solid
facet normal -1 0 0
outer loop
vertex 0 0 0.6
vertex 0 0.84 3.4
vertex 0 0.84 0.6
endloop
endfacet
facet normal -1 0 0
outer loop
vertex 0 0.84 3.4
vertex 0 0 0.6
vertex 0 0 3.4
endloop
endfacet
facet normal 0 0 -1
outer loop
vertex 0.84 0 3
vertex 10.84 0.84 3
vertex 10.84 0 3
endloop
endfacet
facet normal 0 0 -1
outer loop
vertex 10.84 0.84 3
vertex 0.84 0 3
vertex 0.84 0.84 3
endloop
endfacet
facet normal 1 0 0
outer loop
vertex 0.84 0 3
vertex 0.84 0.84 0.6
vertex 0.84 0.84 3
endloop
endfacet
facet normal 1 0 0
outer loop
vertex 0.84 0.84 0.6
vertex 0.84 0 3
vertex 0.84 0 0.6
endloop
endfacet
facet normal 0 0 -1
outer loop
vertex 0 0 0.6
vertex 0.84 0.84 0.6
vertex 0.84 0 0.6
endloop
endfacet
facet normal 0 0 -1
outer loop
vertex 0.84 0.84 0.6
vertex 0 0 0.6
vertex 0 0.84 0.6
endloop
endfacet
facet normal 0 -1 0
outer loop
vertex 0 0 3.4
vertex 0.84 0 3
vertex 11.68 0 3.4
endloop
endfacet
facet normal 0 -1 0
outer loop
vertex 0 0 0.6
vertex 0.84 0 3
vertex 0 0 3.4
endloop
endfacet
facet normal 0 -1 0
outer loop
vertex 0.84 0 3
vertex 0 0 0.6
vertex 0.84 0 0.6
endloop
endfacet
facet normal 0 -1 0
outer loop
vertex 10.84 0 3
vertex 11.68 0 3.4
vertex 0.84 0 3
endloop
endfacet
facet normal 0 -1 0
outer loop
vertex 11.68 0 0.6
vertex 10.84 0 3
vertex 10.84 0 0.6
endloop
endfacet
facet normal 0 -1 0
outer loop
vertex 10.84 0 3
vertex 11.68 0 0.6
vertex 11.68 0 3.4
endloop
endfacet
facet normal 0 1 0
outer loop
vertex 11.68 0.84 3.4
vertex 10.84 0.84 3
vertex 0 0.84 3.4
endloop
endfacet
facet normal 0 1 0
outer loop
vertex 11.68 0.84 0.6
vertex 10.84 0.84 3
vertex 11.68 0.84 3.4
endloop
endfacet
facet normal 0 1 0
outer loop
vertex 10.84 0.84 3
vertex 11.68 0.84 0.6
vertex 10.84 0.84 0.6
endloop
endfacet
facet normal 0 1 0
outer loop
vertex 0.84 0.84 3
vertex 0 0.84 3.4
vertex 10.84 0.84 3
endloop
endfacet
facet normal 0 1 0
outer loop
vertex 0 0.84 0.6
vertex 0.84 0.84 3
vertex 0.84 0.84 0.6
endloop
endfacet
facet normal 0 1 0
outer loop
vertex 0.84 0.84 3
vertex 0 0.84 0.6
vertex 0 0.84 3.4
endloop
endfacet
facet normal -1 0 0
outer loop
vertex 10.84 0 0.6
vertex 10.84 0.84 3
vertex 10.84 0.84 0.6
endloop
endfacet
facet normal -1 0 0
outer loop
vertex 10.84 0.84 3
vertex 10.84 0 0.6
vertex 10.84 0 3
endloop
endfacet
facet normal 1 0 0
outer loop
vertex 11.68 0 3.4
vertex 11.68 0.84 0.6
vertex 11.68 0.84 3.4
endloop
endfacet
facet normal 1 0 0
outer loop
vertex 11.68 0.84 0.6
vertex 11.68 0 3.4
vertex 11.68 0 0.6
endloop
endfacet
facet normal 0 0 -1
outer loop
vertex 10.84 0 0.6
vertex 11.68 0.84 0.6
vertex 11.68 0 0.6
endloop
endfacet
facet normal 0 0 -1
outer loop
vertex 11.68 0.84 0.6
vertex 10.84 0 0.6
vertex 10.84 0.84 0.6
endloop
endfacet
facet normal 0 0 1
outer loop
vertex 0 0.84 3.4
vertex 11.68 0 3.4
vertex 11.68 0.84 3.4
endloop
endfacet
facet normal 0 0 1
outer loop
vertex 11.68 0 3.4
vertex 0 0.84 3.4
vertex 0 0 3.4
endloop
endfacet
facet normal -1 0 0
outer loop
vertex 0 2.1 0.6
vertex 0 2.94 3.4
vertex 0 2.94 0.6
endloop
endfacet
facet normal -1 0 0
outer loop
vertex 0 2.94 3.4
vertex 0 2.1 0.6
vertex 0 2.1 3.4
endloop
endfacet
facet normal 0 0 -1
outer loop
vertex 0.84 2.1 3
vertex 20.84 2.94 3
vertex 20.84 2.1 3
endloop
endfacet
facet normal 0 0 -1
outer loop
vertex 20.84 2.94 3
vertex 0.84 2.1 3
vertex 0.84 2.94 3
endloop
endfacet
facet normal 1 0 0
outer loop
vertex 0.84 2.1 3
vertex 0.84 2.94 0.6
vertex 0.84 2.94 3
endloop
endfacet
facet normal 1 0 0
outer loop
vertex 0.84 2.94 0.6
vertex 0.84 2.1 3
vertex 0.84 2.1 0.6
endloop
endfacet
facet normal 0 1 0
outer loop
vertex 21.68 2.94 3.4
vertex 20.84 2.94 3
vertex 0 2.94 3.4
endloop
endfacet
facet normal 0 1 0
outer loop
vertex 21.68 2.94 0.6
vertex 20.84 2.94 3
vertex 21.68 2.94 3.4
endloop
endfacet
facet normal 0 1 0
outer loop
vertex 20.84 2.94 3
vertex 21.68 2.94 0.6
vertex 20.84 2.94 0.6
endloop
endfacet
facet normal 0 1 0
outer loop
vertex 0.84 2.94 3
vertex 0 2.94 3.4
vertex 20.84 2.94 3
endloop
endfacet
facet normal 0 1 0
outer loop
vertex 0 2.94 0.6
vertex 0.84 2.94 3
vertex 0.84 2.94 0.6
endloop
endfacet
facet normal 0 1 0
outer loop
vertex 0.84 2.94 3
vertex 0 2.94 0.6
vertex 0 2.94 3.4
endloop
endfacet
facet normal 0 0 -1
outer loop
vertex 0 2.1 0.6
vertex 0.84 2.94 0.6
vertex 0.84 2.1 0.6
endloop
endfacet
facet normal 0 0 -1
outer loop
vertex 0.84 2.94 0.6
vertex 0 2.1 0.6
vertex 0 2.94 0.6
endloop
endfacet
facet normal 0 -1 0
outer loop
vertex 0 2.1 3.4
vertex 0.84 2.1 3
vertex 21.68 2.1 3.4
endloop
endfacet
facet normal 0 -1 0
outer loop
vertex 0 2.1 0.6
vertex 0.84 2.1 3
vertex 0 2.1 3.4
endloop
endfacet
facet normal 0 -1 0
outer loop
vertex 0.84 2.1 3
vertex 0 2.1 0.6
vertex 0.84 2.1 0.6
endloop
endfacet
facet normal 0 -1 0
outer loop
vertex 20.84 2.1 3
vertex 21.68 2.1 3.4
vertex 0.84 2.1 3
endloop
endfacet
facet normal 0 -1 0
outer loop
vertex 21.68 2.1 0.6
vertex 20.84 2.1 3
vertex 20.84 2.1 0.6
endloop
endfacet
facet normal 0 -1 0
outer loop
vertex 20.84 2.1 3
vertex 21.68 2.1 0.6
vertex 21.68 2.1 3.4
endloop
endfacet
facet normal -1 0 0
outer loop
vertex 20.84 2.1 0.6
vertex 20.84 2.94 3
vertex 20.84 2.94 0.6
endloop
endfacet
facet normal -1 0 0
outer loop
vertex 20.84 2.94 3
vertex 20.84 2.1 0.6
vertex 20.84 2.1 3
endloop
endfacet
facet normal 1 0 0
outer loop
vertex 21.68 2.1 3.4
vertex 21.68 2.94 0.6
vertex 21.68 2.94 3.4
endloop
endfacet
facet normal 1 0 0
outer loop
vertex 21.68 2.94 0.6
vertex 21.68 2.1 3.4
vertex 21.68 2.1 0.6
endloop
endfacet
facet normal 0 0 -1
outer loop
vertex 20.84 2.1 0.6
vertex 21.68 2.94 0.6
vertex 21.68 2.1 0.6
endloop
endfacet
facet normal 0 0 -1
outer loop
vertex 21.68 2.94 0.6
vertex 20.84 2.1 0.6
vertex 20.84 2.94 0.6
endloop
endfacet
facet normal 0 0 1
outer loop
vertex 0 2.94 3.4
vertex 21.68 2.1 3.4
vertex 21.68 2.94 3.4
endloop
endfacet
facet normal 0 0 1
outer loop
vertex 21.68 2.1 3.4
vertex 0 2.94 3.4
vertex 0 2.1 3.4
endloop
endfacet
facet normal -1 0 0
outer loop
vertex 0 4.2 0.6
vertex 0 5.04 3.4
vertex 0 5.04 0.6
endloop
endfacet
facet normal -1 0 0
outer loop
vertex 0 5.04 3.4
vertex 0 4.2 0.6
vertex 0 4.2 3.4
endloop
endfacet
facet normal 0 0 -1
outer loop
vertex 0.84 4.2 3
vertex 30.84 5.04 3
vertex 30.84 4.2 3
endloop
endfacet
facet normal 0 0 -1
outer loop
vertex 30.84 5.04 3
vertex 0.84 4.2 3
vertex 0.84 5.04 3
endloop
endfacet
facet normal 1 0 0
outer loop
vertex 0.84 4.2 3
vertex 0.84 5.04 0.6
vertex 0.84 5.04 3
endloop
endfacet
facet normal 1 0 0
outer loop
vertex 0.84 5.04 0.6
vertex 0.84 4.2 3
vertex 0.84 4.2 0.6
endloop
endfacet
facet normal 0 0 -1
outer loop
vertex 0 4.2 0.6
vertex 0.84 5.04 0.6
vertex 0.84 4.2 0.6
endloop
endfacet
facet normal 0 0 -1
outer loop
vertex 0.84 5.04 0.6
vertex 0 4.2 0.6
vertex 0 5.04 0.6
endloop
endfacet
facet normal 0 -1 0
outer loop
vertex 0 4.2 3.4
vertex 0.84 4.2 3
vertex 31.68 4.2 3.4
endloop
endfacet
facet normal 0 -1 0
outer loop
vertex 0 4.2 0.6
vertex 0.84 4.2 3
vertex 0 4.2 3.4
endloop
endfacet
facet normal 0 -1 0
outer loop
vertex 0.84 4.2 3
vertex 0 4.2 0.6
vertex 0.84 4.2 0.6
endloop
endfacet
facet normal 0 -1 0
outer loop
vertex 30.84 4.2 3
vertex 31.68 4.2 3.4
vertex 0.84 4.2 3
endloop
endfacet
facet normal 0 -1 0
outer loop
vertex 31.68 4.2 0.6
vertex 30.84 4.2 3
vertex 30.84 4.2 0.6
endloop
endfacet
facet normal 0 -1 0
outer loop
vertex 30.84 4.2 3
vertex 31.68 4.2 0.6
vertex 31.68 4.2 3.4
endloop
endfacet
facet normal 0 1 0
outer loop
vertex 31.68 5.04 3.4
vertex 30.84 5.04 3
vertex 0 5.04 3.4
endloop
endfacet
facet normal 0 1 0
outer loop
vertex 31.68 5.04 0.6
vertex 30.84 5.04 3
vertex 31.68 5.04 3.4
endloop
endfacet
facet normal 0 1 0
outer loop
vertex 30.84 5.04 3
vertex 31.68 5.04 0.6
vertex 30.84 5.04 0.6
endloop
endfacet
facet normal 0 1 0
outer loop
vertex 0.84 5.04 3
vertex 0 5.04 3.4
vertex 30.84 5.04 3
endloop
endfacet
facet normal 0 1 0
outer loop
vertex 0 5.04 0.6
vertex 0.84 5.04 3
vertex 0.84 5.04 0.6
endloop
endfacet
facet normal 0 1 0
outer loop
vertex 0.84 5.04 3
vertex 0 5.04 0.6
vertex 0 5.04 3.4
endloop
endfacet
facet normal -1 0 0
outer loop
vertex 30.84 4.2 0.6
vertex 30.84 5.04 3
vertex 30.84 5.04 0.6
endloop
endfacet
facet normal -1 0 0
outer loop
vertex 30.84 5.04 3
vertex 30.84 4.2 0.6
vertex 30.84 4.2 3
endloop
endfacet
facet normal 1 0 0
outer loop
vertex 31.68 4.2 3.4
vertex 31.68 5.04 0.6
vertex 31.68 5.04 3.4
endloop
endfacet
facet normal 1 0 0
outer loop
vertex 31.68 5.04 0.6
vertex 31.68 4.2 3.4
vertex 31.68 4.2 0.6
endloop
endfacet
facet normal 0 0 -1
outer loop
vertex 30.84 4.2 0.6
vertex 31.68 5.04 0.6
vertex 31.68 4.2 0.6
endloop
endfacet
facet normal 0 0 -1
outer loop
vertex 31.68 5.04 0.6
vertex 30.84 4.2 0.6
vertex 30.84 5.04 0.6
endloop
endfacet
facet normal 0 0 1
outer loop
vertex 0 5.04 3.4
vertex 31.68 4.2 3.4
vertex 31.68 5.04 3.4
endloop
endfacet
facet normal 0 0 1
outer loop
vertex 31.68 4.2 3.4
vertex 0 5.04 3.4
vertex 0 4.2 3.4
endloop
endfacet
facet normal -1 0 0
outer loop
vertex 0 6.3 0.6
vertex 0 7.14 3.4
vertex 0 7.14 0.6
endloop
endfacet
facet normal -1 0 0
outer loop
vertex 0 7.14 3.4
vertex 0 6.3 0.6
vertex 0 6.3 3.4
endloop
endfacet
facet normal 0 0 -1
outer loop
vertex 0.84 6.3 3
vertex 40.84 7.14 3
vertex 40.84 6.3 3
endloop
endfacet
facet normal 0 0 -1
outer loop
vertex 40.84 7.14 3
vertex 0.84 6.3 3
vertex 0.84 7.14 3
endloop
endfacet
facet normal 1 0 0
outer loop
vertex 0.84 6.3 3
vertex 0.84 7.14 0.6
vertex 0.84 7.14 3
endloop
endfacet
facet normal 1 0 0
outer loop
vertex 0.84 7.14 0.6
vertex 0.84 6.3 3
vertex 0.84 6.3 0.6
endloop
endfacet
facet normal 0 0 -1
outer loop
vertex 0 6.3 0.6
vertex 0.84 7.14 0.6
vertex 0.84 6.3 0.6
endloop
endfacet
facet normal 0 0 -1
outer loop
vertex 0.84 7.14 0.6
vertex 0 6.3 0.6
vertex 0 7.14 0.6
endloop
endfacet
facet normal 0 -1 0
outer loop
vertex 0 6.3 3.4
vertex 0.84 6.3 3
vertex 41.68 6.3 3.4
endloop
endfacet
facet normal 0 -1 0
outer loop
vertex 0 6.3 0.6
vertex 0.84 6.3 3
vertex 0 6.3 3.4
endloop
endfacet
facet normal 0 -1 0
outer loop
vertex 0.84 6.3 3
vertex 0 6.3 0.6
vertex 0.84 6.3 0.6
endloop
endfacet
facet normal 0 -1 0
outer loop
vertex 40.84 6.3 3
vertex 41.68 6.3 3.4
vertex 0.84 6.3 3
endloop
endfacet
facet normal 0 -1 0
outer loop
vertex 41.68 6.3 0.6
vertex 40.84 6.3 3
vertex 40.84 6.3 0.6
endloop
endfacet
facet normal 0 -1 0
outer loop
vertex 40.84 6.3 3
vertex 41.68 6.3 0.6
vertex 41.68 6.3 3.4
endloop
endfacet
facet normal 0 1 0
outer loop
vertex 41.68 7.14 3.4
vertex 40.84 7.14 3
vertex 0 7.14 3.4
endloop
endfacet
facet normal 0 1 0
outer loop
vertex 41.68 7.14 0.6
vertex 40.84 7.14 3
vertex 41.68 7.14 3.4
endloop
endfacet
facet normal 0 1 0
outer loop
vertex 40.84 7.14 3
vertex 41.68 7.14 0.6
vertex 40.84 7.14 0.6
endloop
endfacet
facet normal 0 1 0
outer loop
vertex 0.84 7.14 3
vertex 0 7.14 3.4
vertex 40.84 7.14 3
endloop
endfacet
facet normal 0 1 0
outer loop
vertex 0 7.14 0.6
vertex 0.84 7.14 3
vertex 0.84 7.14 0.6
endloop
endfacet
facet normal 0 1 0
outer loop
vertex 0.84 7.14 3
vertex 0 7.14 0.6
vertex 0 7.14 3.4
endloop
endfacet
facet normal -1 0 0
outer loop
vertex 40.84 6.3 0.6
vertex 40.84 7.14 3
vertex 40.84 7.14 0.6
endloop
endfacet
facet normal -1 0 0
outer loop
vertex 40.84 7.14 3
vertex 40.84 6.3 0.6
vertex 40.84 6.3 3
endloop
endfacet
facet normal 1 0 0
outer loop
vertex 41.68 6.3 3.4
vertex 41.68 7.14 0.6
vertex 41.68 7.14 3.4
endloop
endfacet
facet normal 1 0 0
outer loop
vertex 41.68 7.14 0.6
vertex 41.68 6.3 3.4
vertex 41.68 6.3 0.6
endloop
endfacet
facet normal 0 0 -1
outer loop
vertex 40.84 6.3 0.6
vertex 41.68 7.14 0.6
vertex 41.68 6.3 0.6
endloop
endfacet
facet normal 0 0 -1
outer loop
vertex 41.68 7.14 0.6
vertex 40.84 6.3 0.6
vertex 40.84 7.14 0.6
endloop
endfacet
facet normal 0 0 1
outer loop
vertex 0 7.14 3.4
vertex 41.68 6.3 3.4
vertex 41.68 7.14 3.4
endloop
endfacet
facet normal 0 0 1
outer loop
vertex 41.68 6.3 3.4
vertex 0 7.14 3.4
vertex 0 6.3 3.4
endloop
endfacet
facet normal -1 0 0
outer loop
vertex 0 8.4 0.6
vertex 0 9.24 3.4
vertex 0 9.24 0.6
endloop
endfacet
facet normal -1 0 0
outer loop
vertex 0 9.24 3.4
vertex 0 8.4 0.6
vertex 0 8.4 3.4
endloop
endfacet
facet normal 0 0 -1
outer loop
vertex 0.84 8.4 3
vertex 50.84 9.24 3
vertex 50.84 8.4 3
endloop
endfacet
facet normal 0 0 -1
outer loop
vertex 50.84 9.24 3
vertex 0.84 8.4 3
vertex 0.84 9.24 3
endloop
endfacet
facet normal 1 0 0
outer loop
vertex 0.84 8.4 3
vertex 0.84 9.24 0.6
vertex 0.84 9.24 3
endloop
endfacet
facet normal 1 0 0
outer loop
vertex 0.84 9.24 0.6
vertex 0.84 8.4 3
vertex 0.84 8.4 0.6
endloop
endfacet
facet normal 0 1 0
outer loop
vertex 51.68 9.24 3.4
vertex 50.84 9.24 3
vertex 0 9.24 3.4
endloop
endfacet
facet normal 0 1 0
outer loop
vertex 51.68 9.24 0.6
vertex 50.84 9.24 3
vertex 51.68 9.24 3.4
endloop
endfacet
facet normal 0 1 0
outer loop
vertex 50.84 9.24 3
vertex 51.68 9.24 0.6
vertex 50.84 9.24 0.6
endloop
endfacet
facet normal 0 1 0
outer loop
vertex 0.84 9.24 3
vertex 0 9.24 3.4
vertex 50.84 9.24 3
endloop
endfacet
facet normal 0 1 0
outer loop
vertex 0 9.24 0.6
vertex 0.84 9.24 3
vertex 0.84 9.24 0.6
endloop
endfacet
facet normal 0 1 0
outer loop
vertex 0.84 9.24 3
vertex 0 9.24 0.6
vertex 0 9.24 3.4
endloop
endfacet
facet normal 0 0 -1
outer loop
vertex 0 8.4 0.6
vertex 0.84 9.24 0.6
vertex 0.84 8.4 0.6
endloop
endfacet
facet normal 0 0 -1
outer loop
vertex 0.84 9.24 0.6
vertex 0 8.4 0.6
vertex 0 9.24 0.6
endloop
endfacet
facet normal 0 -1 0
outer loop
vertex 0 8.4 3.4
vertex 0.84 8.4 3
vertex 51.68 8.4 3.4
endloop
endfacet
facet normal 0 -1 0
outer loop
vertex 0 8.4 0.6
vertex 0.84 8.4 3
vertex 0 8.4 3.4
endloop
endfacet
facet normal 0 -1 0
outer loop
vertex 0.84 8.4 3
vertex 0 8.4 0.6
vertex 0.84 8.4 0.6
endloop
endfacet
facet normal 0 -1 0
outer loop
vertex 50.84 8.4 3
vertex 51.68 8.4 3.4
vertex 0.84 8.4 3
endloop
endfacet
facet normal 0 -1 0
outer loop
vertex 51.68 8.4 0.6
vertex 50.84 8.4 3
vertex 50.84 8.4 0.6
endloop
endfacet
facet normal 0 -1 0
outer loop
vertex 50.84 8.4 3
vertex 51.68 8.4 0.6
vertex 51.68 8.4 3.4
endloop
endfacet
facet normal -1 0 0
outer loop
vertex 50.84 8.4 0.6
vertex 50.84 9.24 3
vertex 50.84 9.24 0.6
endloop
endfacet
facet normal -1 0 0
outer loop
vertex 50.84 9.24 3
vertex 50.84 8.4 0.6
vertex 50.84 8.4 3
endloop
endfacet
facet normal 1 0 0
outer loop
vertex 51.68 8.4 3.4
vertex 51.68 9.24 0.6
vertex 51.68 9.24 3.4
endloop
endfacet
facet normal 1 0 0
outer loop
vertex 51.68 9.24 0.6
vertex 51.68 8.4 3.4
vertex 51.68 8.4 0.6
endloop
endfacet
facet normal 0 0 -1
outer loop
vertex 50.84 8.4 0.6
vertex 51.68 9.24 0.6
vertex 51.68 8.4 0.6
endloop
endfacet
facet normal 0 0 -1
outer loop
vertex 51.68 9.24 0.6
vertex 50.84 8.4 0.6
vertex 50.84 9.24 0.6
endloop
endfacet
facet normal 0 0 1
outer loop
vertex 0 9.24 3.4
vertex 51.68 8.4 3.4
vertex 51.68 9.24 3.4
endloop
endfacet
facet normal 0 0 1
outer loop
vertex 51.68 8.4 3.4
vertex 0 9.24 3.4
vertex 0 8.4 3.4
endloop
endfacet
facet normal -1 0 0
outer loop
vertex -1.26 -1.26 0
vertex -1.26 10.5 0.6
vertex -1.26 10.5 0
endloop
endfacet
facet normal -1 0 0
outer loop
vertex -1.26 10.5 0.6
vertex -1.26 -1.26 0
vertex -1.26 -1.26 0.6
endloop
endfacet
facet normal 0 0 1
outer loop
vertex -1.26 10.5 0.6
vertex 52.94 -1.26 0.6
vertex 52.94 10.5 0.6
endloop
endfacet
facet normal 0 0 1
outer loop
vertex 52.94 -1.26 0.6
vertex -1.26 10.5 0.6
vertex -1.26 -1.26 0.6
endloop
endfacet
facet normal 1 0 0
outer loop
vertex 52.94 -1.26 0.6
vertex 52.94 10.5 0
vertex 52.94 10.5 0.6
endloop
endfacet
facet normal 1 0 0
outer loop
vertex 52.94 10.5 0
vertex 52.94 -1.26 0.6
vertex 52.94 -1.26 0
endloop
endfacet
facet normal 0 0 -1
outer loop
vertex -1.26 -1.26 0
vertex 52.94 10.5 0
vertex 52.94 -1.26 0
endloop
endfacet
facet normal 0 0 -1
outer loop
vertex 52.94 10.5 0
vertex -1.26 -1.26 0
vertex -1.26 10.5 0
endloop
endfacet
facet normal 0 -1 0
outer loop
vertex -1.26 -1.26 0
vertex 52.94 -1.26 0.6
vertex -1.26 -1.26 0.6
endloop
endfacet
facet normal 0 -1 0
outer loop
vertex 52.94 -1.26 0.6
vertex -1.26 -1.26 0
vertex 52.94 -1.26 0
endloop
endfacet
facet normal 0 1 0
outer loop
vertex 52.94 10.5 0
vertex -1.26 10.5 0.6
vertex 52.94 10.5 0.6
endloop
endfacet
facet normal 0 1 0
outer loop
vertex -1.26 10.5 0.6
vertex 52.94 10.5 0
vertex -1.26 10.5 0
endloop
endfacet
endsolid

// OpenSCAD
include <../3d-printer-testing-suite.scad>

/* [Hidden] */
color_scheme = ["lightblue"];
test_type = "bridging";
